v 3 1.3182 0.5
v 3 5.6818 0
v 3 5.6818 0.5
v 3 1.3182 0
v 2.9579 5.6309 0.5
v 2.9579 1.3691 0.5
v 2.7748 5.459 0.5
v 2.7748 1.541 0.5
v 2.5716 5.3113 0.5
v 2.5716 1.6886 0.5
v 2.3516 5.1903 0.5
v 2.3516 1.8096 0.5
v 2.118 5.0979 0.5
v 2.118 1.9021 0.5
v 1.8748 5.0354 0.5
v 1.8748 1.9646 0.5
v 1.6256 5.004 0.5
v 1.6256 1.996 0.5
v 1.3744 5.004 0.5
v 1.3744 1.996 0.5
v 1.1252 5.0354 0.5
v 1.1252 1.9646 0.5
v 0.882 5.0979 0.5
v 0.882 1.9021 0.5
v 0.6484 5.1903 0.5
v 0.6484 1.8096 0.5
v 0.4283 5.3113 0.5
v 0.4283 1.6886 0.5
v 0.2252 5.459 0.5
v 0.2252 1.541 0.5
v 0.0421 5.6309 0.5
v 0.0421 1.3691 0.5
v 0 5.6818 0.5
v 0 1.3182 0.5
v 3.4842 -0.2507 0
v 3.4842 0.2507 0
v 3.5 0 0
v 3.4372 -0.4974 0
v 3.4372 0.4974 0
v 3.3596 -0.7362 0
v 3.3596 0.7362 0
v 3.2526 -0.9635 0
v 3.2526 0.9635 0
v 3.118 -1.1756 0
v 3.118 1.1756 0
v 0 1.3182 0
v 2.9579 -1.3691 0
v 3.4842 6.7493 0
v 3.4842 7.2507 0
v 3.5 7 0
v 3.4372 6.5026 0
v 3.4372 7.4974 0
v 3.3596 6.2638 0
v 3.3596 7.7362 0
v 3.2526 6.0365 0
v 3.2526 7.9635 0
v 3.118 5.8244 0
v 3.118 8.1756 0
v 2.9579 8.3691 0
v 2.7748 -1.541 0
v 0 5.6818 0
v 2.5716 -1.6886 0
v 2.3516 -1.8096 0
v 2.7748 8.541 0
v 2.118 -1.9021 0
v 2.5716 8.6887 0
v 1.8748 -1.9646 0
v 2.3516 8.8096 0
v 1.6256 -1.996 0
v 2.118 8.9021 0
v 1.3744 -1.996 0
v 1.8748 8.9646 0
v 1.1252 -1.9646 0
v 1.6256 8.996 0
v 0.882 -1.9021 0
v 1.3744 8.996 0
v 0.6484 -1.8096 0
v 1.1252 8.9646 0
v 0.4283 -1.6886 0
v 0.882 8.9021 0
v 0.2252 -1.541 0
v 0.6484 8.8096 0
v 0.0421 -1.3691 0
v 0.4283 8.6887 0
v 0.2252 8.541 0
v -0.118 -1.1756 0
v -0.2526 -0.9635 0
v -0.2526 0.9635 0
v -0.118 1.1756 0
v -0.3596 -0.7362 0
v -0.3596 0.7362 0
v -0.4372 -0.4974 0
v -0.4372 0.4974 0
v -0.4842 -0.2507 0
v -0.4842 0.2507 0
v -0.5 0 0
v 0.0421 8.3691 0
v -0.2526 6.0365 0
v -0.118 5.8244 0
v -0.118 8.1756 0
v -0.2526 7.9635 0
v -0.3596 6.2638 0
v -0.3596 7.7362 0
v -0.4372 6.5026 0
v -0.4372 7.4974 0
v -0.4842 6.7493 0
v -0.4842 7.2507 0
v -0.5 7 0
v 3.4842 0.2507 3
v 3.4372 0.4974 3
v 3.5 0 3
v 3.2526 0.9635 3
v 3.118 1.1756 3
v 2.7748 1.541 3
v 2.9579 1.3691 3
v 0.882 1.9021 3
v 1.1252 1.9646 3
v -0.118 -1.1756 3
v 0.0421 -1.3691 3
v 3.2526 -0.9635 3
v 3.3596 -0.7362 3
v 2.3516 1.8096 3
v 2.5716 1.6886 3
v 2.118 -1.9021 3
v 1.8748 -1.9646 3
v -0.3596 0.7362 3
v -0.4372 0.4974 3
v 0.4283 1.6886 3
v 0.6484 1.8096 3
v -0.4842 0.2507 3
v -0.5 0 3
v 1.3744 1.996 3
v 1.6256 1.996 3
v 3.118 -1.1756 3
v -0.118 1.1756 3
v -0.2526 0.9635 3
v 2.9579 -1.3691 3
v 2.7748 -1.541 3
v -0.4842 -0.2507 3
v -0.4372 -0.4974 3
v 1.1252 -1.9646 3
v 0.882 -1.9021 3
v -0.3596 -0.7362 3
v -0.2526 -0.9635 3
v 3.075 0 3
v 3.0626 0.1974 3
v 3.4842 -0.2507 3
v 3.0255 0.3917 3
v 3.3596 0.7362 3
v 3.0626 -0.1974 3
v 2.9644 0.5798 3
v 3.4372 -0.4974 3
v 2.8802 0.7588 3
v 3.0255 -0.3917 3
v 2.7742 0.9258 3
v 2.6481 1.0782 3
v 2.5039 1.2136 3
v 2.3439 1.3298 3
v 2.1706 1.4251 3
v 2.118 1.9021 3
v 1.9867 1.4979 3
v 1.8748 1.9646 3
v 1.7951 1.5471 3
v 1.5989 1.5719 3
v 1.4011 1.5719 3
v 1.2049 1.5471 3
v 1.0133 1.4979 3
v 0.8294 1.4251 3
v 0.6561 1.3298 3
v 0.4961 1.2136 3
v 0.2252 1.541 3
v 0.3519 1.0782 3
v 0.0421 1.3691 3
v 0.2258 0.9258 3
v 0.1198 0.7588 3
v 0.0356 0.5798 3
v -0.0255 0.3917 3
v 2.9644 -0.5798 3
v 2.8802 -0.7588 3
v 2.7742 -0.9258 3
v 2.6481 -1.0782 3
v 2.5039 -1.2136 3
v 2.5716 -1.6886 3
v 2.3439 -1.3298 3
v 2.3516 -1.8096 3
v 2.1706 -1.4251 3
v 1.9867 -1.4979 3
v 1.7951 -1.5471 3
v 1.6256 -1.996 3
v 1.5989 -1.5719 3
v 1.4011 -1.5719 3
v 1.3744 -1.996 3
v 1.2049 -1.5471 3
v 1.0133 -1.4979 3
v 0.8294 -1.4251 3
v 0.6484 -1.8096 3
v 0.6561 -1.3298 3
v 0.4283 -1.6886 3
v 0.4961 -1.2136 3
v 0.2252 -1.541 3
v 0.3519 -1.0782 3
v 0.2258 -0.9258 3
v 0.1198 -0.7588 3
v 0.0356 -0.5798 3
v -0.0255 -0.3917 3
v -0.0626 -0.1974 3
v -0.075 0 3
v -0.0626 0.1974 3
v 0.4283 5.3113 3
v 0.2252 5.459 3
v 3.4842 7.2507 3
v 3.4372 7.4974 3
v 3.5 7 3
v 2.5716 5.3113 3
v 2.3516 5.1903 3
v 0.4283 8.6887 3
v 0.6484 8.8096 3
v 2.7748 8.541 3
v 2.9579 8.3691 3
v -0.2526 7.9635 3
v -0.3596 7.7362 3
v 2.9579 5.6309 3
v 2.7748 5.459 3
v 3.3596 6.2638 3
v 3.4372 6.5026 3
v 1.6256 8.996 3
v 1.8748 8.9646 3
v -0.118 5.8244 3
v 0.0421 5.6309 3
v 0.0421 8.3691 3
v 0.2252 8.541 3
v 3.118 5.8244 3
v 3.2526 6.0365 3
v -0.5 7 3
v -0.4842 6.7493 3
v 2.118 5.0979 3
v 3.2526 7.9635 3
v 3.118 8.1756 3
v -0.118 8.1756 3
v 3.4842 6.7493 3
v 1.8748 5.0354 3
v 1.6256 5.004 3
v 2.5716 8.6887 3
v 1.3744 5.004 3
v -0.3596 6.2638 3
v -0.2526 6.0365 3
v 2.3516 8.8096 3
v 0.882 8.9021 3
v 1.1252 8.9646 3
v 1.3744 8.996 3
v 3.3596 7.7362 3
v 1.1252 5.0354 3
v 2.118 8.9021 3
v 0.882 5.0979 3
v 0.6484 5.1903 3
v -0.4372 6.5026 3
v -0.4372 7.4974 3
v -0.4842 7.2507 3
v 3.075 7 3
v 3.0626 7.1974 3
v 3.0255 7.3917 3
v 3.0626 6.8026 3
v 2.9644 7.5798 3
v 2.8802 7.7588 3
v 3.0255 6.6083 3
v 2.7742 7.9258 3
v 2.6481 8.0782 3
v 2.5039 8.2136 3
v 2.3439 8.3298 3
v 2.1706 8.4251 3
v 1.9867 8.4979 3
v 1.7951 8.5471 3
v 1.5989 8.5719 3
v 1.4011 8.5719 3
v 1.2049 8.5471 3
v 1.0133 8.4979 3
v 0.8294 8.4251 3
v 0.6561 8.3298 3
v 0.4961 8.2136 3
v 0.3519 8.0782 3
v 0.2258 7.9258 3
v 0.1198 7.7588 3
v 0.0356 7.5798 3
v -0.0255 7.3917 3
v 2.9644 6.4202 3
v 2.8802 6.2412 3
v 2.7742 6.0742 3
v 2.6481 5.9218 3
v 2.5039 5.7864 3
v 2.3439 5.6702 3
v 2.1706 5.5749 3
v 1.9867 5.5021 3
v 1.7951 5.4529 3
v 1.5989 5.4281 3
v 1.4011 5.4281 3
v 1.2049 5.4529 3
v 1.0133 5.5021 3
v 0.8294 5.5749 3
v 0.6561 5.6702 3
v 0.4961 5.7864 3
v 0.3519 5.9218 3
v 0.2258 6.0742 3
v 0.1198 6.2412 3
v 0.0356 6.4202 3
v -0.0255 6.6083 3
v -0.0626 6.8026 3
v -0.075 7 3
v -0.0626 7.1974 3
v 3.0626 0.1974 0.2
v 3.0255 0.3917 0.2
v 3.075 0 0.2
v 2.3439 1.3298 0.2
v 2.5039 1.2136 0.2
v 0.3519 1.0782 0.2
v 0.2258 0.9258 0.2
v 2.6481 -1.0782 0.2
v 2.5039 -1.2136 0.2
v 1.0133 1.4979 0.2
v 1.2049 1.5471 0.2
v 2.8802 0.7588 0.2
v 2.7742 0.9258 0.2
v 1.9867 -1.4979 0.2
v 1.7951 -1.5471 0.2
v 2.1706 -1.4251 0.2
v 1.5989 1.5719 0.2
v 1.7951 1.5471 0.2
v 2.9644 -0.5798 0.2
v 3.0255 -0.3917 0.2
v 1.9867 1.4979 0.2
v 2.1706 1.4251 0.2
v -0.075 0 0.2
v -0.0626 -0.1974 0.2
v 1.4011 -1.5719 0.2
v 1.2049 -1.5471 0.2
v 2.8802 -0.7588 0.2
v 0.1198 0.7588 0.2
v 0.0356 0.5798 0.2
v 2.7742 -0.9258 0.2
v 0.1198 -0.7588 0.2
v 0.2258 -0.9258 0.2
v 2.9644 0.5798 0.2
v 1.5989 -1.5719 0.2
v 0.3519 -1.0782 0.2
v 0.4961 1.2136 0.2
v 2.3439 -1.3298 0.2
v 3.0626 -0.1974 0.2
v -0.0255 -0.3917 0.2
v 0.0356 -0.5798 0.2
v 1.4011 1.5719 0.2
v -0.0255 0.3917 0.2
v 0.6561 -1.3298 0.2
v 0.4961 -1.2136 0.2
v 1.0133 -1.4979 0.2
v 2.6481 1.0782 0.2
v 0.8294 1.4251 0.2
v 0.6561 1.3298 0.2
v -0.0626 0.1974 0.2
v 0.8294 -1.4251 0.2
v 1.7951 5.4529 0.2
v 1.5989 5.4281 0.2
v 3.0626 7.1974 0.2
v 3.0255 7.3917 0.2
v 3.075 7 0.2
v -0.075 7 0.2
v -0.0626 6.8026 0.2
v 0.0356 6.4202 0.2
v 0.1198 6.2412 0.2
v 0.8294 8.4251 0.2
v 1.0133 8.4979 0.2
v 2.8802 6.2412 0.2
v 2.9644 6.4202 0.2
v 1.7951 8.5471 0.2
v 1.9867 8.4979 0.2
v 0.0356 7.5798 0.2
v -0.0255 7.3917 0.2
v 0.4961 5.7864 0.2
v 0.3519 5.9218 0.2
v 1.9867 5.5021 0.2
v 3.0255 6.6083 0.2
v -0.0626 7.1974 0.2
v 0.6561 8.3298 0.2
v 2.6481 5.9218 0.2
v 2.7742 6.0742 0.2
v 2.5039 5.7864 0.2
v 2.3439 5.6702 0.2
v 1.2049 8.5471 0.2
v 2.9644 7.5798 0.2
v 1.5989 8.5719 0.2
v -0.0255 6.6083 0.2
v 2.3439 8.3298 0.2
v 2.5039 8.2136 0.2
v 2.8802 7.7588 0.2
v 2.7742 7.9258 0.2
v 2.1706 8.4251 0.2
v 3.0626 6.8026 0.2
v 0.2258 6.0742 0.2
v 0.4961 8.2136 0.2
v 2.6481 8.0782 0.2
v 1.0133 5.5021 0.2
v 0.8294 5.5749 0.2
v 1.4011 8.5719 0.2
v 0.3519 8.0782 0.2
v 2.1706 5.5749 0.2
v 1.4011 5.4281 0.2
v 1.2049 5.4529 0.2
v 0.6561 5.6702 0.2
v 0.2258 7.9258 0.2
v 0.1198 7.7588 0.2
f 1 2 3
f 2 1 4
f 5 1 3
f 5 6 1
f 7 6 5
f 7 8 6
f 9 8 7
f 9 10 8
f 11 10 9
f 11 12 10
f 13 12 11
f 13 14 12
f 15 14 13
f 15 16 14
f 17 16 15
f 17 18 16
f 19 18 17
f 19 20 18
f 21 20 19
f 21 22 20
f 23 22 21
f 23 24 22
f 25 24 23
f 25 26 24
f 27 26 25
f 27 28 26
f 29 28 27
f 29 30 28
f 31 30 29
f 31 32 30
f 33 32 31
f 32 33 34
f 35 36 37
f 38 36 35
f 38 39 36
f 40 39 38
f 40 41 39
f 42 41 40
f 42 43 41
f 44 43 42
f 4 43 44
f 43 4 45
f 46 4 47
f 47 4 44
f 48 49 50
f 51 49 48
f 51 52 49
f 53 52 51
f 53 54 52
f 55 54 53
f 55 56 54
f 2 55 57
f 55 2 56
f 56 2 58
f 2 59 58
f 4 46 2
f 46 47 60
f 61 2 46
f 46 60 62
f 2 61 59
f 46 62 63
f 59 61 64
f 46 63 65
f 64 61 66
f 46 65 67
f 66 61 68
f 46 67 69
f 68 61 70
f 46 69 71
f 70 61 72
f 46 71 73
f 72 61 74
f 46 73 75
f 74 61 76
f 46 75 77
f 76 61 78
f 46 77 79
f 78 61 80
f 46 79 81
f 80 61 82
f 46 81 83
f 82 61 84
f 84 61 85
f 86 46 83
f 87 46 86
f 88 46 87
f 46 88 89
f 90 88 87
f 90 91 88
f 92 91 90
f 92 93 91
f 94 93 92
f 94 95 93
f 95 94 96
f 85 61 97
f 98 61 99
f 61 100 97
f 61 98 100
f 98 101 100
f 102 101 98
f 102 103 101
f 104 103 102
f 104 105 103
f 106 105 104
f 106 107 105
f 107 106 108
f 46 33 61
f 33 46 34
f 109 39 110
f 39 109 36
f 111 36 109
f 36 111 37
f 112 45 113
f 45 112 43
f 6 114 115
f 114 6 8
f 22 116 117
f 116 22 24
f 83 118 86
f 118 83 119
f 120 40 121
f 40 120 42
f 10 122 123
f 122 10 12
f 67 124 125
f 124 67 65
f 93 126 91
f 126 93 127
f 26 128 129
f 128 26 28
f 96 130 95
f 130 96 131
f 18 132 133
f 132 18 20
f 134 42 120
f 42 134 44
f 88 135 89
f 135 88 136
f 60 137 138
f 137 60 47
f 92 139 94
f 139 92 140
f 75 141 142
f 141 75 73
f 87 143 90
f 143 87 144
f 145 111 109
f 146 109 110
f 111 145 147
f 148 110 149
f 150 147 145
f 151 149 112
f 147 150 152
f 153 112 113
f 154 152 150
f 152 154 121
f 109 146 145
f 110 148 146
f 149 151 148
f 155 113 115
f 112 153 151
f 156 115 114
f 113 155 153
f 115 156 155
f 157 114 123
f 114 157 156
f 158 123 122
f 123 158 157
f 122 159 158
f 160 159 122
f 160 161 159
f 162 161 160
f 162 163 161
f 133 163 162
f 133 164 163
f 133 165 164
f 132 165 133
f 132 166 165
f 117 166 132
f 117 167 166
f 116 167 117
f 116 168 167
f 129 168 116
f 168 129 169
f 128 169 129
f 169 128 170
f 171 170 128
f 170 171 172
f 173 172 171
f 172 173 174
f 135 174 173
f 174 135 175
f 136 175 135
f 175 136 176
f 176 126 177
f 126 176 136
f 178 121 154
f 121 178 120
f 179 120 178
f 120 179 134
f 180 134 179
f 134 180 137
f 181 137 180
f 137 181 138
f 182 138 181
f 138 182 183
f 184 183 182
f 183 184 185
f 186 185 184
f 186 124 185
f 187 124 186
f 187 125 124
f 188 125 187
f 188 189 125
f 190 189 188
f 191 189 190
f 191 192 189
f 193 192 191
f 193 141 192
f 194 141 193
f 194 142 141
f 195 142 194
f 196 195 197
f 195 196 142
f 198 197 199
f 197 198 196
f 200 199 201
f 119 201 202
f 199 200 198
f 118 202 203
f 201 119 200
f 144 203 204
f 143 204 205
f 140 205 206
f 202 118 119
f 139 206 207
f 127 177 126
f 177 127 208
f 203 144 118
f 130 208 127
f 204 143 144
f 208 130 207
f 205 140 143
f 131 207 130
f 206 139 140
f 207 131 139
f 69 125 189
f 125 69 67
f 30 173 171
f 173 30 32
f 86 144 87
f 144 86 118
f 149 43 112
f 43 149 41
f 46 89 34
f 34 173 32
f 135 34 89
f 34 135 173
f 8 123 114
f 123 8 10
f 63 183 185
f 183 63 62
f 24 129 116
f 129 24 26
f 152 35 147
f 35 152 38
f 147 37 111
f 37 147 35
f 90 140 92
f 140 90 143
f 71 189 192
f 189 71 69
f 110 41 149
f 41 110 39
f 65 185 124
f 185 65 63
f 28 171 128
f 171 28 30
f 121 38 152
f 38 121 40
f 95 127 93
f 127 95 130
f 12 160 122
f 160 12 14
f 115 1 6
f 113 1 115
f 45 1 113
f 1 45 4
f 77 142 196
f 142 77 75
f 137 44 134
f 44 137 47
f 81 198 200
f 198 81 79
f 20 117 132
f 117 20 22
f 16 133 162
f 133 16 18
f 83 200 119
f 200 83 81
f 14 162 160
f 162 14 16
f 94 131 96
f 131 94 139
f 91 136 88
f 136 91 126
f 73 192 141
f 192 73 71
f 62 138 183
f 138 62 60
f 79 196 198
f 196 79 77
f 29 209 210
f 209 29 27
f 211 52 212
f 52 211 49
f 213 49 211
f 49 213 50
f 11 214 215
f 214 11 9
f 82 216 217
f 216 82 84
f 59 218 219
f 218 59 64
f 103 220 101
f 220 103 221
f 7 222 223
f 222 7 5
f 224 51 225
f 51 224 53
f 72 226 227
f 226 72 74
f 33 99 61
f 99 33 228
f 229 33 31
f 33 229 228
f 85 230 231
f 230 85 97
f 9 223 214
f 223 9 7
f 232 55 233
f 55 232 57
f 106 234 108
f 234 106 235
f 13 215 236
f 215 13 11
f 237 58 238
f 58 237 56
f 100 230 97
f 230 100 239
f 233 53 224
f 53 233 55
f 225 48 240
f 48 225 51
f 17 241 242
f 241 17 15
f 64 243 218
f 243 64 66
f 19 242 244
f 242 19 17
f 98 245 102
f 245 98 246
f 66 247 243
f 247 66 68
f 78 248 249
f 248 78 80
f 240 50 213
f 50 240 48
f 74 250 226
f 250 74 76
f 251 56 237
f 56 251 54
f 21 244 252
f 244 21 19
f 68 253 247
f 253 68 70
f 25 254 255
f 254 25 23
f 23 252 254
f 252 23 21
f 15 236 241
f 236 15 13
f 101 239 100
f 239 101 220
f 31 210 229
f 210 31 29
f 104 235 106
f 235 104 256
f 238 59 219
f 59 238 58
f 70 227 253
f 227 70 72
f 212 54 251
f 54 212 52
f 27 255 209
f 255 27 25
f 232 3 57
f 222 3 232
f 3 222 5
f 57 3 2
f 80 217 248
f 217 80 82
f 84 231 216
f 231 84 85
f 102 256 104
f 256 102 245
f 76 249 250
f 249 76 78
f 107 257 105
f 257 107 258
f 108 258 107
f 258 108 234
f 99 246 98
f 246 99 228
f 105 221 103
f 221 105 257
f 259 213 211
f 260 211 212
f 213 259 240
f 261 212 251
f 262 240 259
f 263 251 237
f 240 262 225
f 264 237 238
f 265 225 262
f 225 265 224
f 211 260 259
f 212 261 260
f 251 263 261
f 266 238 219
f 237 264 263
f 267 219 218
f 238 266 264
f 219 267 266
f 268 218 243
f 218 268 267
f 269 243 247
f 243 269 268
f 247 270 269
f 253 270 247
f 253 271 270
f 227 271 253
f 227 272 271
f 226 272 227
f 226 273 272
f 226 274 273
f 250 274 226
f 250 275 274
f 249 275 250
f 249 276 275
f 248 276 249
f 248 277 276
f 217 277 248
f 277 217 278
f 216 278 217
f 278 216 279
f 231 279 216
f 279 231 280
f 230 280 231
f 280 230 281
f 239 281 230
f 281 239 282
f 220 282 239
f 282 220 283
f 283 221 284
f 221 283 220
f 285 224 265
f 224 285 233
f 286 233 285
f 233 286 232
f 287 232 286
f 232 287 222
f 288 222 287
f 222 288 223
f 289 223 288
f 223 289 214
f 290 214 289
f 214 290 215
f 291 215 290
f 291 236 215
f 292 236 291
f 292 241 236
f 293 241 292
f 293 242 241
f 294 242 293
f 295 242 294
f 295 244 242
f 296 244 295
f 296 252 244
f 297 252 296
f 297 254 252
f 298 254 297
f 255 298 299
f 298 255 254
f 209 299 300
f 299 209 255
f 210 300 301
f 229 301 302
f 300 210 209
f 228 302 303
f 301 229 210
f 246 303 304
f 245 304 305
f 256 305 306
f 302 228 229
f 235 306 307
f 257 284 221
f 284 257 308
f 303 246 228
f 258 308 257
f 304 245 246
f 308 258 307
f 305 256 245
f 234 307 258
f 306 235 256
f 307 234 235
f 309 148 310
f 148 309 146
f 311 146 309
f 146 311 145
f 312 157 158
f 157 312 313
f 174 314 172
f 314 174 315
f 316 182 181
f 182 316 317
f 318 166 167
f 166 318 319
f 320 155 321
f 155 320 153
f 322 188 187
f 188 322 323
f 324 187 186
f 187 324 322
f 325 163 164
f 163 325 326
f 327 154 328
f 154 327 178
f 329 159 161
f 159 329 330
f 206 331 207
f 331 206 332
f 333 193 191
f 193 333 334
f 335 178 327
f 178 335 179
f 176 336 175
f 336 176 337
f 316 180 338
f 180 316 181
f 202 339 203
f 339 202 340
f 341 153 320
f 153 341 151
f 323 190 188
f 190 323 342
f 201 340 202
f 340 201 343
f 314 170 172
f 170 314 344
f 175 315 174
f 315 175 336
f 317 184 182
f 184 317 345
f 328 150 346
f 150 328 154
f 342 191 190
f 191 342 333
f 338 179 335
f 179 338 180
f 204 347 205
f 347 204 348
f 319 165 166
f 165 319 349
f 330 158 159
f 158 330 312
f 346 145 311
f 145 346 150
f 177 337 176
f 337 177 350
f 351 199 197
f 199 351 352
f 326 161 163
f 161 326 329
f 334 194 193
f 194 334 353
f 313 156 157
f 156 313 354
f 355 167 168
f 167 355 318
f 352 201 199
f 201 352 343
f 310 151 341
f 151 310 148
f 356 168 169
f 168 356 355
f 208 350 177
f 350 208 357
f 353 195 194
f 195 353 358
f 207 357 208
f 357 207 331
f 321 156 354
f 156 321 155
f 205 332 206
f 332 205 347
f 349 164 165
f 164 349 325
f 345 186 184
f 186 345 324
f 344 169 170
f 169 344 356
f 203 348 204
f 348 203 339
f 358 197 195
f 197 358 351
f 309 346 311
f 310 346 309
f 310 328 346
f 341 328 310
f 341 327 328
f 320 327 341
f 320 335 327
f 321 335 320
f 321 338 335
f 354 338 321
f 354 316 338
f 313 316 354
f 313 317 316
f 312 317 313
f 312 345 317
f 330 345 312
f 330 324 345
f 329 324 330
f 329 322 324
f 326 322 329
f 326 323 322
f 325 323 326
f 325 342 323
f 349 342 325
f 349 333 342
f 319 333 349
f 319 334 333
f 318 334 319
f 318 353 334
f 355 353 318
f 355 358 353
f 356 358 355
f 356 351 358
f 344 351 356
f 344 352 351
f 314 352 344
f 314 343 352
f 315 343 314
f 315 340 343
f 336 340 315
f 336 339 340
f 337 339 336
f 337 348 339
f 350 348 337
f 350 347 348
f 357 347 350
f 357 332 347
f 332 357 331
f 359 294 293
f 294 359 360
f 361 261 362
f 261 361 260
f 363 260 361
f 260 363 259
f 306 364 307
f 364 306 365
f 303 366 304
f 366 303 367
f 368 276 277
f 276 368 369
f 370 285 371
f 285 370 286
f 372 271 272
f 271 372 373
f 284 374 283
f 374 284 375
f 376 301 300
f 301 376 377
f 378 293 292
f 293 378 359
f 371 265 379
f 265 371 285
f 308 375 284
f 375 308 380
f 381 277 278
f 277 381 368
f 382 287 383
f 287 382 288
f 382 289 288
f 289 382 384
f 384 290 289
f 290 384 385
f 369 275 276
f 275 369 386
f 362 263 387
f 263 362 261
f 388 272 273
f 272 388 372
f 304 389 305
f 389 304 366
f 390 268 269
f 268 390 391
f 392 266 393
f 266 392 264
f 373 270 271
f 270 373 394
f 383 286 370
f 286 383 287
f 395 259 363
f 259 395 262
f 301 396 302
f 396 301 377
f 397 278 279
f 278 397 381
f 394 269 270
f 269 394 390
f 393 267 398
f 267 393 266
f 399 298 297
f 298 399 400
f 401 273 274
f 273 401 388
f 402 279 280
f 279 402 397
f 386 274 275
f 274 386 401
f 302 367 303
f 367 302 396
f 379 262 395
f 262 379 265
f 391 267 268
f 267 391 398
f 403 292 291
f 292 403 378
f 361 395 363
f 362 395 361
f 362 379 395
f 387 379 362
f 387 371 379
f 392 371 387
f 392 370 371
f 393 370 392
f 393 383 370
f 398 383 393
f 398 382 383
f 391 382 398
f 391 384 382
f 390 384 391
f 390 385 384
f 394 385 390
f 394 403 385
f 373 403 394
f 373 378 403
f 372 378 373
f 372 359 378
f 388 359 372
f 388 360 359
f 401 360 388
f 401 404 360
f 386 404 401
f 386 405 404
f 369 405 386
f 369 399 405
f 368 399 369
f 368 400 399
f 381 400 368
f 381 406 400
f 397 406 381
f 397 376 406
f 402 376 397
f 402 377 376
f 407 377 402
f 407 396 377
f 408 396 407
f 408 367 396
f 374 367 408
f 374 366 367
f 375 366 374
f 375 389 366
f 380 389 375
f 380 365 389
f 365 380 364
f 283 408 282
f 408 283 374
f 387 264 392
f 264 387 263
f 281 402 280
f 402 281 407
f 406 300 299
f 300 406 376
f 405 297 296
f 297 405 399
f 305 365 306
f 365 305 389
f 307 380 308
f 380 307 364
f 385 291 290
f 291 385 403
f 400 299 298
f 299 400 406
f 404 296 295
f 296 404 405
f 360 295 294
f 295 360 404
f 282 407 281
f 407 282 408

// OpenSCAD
$fn = 50;

difference() {
	 union(){
		cube([3,7, 0.5]);
		translate([1.5,0,0]) cylinder(d=4, h=3);
		translate([1.5,7,0]) cylinder(d=4, h=3);
	}
translate ([0,0,0.2]){
	translate([1.5,0,0]) cylinder(d=3.15, h=3);
	translate([1.5,7,0]) cylinder(d=3.15, h=3);
}
}
